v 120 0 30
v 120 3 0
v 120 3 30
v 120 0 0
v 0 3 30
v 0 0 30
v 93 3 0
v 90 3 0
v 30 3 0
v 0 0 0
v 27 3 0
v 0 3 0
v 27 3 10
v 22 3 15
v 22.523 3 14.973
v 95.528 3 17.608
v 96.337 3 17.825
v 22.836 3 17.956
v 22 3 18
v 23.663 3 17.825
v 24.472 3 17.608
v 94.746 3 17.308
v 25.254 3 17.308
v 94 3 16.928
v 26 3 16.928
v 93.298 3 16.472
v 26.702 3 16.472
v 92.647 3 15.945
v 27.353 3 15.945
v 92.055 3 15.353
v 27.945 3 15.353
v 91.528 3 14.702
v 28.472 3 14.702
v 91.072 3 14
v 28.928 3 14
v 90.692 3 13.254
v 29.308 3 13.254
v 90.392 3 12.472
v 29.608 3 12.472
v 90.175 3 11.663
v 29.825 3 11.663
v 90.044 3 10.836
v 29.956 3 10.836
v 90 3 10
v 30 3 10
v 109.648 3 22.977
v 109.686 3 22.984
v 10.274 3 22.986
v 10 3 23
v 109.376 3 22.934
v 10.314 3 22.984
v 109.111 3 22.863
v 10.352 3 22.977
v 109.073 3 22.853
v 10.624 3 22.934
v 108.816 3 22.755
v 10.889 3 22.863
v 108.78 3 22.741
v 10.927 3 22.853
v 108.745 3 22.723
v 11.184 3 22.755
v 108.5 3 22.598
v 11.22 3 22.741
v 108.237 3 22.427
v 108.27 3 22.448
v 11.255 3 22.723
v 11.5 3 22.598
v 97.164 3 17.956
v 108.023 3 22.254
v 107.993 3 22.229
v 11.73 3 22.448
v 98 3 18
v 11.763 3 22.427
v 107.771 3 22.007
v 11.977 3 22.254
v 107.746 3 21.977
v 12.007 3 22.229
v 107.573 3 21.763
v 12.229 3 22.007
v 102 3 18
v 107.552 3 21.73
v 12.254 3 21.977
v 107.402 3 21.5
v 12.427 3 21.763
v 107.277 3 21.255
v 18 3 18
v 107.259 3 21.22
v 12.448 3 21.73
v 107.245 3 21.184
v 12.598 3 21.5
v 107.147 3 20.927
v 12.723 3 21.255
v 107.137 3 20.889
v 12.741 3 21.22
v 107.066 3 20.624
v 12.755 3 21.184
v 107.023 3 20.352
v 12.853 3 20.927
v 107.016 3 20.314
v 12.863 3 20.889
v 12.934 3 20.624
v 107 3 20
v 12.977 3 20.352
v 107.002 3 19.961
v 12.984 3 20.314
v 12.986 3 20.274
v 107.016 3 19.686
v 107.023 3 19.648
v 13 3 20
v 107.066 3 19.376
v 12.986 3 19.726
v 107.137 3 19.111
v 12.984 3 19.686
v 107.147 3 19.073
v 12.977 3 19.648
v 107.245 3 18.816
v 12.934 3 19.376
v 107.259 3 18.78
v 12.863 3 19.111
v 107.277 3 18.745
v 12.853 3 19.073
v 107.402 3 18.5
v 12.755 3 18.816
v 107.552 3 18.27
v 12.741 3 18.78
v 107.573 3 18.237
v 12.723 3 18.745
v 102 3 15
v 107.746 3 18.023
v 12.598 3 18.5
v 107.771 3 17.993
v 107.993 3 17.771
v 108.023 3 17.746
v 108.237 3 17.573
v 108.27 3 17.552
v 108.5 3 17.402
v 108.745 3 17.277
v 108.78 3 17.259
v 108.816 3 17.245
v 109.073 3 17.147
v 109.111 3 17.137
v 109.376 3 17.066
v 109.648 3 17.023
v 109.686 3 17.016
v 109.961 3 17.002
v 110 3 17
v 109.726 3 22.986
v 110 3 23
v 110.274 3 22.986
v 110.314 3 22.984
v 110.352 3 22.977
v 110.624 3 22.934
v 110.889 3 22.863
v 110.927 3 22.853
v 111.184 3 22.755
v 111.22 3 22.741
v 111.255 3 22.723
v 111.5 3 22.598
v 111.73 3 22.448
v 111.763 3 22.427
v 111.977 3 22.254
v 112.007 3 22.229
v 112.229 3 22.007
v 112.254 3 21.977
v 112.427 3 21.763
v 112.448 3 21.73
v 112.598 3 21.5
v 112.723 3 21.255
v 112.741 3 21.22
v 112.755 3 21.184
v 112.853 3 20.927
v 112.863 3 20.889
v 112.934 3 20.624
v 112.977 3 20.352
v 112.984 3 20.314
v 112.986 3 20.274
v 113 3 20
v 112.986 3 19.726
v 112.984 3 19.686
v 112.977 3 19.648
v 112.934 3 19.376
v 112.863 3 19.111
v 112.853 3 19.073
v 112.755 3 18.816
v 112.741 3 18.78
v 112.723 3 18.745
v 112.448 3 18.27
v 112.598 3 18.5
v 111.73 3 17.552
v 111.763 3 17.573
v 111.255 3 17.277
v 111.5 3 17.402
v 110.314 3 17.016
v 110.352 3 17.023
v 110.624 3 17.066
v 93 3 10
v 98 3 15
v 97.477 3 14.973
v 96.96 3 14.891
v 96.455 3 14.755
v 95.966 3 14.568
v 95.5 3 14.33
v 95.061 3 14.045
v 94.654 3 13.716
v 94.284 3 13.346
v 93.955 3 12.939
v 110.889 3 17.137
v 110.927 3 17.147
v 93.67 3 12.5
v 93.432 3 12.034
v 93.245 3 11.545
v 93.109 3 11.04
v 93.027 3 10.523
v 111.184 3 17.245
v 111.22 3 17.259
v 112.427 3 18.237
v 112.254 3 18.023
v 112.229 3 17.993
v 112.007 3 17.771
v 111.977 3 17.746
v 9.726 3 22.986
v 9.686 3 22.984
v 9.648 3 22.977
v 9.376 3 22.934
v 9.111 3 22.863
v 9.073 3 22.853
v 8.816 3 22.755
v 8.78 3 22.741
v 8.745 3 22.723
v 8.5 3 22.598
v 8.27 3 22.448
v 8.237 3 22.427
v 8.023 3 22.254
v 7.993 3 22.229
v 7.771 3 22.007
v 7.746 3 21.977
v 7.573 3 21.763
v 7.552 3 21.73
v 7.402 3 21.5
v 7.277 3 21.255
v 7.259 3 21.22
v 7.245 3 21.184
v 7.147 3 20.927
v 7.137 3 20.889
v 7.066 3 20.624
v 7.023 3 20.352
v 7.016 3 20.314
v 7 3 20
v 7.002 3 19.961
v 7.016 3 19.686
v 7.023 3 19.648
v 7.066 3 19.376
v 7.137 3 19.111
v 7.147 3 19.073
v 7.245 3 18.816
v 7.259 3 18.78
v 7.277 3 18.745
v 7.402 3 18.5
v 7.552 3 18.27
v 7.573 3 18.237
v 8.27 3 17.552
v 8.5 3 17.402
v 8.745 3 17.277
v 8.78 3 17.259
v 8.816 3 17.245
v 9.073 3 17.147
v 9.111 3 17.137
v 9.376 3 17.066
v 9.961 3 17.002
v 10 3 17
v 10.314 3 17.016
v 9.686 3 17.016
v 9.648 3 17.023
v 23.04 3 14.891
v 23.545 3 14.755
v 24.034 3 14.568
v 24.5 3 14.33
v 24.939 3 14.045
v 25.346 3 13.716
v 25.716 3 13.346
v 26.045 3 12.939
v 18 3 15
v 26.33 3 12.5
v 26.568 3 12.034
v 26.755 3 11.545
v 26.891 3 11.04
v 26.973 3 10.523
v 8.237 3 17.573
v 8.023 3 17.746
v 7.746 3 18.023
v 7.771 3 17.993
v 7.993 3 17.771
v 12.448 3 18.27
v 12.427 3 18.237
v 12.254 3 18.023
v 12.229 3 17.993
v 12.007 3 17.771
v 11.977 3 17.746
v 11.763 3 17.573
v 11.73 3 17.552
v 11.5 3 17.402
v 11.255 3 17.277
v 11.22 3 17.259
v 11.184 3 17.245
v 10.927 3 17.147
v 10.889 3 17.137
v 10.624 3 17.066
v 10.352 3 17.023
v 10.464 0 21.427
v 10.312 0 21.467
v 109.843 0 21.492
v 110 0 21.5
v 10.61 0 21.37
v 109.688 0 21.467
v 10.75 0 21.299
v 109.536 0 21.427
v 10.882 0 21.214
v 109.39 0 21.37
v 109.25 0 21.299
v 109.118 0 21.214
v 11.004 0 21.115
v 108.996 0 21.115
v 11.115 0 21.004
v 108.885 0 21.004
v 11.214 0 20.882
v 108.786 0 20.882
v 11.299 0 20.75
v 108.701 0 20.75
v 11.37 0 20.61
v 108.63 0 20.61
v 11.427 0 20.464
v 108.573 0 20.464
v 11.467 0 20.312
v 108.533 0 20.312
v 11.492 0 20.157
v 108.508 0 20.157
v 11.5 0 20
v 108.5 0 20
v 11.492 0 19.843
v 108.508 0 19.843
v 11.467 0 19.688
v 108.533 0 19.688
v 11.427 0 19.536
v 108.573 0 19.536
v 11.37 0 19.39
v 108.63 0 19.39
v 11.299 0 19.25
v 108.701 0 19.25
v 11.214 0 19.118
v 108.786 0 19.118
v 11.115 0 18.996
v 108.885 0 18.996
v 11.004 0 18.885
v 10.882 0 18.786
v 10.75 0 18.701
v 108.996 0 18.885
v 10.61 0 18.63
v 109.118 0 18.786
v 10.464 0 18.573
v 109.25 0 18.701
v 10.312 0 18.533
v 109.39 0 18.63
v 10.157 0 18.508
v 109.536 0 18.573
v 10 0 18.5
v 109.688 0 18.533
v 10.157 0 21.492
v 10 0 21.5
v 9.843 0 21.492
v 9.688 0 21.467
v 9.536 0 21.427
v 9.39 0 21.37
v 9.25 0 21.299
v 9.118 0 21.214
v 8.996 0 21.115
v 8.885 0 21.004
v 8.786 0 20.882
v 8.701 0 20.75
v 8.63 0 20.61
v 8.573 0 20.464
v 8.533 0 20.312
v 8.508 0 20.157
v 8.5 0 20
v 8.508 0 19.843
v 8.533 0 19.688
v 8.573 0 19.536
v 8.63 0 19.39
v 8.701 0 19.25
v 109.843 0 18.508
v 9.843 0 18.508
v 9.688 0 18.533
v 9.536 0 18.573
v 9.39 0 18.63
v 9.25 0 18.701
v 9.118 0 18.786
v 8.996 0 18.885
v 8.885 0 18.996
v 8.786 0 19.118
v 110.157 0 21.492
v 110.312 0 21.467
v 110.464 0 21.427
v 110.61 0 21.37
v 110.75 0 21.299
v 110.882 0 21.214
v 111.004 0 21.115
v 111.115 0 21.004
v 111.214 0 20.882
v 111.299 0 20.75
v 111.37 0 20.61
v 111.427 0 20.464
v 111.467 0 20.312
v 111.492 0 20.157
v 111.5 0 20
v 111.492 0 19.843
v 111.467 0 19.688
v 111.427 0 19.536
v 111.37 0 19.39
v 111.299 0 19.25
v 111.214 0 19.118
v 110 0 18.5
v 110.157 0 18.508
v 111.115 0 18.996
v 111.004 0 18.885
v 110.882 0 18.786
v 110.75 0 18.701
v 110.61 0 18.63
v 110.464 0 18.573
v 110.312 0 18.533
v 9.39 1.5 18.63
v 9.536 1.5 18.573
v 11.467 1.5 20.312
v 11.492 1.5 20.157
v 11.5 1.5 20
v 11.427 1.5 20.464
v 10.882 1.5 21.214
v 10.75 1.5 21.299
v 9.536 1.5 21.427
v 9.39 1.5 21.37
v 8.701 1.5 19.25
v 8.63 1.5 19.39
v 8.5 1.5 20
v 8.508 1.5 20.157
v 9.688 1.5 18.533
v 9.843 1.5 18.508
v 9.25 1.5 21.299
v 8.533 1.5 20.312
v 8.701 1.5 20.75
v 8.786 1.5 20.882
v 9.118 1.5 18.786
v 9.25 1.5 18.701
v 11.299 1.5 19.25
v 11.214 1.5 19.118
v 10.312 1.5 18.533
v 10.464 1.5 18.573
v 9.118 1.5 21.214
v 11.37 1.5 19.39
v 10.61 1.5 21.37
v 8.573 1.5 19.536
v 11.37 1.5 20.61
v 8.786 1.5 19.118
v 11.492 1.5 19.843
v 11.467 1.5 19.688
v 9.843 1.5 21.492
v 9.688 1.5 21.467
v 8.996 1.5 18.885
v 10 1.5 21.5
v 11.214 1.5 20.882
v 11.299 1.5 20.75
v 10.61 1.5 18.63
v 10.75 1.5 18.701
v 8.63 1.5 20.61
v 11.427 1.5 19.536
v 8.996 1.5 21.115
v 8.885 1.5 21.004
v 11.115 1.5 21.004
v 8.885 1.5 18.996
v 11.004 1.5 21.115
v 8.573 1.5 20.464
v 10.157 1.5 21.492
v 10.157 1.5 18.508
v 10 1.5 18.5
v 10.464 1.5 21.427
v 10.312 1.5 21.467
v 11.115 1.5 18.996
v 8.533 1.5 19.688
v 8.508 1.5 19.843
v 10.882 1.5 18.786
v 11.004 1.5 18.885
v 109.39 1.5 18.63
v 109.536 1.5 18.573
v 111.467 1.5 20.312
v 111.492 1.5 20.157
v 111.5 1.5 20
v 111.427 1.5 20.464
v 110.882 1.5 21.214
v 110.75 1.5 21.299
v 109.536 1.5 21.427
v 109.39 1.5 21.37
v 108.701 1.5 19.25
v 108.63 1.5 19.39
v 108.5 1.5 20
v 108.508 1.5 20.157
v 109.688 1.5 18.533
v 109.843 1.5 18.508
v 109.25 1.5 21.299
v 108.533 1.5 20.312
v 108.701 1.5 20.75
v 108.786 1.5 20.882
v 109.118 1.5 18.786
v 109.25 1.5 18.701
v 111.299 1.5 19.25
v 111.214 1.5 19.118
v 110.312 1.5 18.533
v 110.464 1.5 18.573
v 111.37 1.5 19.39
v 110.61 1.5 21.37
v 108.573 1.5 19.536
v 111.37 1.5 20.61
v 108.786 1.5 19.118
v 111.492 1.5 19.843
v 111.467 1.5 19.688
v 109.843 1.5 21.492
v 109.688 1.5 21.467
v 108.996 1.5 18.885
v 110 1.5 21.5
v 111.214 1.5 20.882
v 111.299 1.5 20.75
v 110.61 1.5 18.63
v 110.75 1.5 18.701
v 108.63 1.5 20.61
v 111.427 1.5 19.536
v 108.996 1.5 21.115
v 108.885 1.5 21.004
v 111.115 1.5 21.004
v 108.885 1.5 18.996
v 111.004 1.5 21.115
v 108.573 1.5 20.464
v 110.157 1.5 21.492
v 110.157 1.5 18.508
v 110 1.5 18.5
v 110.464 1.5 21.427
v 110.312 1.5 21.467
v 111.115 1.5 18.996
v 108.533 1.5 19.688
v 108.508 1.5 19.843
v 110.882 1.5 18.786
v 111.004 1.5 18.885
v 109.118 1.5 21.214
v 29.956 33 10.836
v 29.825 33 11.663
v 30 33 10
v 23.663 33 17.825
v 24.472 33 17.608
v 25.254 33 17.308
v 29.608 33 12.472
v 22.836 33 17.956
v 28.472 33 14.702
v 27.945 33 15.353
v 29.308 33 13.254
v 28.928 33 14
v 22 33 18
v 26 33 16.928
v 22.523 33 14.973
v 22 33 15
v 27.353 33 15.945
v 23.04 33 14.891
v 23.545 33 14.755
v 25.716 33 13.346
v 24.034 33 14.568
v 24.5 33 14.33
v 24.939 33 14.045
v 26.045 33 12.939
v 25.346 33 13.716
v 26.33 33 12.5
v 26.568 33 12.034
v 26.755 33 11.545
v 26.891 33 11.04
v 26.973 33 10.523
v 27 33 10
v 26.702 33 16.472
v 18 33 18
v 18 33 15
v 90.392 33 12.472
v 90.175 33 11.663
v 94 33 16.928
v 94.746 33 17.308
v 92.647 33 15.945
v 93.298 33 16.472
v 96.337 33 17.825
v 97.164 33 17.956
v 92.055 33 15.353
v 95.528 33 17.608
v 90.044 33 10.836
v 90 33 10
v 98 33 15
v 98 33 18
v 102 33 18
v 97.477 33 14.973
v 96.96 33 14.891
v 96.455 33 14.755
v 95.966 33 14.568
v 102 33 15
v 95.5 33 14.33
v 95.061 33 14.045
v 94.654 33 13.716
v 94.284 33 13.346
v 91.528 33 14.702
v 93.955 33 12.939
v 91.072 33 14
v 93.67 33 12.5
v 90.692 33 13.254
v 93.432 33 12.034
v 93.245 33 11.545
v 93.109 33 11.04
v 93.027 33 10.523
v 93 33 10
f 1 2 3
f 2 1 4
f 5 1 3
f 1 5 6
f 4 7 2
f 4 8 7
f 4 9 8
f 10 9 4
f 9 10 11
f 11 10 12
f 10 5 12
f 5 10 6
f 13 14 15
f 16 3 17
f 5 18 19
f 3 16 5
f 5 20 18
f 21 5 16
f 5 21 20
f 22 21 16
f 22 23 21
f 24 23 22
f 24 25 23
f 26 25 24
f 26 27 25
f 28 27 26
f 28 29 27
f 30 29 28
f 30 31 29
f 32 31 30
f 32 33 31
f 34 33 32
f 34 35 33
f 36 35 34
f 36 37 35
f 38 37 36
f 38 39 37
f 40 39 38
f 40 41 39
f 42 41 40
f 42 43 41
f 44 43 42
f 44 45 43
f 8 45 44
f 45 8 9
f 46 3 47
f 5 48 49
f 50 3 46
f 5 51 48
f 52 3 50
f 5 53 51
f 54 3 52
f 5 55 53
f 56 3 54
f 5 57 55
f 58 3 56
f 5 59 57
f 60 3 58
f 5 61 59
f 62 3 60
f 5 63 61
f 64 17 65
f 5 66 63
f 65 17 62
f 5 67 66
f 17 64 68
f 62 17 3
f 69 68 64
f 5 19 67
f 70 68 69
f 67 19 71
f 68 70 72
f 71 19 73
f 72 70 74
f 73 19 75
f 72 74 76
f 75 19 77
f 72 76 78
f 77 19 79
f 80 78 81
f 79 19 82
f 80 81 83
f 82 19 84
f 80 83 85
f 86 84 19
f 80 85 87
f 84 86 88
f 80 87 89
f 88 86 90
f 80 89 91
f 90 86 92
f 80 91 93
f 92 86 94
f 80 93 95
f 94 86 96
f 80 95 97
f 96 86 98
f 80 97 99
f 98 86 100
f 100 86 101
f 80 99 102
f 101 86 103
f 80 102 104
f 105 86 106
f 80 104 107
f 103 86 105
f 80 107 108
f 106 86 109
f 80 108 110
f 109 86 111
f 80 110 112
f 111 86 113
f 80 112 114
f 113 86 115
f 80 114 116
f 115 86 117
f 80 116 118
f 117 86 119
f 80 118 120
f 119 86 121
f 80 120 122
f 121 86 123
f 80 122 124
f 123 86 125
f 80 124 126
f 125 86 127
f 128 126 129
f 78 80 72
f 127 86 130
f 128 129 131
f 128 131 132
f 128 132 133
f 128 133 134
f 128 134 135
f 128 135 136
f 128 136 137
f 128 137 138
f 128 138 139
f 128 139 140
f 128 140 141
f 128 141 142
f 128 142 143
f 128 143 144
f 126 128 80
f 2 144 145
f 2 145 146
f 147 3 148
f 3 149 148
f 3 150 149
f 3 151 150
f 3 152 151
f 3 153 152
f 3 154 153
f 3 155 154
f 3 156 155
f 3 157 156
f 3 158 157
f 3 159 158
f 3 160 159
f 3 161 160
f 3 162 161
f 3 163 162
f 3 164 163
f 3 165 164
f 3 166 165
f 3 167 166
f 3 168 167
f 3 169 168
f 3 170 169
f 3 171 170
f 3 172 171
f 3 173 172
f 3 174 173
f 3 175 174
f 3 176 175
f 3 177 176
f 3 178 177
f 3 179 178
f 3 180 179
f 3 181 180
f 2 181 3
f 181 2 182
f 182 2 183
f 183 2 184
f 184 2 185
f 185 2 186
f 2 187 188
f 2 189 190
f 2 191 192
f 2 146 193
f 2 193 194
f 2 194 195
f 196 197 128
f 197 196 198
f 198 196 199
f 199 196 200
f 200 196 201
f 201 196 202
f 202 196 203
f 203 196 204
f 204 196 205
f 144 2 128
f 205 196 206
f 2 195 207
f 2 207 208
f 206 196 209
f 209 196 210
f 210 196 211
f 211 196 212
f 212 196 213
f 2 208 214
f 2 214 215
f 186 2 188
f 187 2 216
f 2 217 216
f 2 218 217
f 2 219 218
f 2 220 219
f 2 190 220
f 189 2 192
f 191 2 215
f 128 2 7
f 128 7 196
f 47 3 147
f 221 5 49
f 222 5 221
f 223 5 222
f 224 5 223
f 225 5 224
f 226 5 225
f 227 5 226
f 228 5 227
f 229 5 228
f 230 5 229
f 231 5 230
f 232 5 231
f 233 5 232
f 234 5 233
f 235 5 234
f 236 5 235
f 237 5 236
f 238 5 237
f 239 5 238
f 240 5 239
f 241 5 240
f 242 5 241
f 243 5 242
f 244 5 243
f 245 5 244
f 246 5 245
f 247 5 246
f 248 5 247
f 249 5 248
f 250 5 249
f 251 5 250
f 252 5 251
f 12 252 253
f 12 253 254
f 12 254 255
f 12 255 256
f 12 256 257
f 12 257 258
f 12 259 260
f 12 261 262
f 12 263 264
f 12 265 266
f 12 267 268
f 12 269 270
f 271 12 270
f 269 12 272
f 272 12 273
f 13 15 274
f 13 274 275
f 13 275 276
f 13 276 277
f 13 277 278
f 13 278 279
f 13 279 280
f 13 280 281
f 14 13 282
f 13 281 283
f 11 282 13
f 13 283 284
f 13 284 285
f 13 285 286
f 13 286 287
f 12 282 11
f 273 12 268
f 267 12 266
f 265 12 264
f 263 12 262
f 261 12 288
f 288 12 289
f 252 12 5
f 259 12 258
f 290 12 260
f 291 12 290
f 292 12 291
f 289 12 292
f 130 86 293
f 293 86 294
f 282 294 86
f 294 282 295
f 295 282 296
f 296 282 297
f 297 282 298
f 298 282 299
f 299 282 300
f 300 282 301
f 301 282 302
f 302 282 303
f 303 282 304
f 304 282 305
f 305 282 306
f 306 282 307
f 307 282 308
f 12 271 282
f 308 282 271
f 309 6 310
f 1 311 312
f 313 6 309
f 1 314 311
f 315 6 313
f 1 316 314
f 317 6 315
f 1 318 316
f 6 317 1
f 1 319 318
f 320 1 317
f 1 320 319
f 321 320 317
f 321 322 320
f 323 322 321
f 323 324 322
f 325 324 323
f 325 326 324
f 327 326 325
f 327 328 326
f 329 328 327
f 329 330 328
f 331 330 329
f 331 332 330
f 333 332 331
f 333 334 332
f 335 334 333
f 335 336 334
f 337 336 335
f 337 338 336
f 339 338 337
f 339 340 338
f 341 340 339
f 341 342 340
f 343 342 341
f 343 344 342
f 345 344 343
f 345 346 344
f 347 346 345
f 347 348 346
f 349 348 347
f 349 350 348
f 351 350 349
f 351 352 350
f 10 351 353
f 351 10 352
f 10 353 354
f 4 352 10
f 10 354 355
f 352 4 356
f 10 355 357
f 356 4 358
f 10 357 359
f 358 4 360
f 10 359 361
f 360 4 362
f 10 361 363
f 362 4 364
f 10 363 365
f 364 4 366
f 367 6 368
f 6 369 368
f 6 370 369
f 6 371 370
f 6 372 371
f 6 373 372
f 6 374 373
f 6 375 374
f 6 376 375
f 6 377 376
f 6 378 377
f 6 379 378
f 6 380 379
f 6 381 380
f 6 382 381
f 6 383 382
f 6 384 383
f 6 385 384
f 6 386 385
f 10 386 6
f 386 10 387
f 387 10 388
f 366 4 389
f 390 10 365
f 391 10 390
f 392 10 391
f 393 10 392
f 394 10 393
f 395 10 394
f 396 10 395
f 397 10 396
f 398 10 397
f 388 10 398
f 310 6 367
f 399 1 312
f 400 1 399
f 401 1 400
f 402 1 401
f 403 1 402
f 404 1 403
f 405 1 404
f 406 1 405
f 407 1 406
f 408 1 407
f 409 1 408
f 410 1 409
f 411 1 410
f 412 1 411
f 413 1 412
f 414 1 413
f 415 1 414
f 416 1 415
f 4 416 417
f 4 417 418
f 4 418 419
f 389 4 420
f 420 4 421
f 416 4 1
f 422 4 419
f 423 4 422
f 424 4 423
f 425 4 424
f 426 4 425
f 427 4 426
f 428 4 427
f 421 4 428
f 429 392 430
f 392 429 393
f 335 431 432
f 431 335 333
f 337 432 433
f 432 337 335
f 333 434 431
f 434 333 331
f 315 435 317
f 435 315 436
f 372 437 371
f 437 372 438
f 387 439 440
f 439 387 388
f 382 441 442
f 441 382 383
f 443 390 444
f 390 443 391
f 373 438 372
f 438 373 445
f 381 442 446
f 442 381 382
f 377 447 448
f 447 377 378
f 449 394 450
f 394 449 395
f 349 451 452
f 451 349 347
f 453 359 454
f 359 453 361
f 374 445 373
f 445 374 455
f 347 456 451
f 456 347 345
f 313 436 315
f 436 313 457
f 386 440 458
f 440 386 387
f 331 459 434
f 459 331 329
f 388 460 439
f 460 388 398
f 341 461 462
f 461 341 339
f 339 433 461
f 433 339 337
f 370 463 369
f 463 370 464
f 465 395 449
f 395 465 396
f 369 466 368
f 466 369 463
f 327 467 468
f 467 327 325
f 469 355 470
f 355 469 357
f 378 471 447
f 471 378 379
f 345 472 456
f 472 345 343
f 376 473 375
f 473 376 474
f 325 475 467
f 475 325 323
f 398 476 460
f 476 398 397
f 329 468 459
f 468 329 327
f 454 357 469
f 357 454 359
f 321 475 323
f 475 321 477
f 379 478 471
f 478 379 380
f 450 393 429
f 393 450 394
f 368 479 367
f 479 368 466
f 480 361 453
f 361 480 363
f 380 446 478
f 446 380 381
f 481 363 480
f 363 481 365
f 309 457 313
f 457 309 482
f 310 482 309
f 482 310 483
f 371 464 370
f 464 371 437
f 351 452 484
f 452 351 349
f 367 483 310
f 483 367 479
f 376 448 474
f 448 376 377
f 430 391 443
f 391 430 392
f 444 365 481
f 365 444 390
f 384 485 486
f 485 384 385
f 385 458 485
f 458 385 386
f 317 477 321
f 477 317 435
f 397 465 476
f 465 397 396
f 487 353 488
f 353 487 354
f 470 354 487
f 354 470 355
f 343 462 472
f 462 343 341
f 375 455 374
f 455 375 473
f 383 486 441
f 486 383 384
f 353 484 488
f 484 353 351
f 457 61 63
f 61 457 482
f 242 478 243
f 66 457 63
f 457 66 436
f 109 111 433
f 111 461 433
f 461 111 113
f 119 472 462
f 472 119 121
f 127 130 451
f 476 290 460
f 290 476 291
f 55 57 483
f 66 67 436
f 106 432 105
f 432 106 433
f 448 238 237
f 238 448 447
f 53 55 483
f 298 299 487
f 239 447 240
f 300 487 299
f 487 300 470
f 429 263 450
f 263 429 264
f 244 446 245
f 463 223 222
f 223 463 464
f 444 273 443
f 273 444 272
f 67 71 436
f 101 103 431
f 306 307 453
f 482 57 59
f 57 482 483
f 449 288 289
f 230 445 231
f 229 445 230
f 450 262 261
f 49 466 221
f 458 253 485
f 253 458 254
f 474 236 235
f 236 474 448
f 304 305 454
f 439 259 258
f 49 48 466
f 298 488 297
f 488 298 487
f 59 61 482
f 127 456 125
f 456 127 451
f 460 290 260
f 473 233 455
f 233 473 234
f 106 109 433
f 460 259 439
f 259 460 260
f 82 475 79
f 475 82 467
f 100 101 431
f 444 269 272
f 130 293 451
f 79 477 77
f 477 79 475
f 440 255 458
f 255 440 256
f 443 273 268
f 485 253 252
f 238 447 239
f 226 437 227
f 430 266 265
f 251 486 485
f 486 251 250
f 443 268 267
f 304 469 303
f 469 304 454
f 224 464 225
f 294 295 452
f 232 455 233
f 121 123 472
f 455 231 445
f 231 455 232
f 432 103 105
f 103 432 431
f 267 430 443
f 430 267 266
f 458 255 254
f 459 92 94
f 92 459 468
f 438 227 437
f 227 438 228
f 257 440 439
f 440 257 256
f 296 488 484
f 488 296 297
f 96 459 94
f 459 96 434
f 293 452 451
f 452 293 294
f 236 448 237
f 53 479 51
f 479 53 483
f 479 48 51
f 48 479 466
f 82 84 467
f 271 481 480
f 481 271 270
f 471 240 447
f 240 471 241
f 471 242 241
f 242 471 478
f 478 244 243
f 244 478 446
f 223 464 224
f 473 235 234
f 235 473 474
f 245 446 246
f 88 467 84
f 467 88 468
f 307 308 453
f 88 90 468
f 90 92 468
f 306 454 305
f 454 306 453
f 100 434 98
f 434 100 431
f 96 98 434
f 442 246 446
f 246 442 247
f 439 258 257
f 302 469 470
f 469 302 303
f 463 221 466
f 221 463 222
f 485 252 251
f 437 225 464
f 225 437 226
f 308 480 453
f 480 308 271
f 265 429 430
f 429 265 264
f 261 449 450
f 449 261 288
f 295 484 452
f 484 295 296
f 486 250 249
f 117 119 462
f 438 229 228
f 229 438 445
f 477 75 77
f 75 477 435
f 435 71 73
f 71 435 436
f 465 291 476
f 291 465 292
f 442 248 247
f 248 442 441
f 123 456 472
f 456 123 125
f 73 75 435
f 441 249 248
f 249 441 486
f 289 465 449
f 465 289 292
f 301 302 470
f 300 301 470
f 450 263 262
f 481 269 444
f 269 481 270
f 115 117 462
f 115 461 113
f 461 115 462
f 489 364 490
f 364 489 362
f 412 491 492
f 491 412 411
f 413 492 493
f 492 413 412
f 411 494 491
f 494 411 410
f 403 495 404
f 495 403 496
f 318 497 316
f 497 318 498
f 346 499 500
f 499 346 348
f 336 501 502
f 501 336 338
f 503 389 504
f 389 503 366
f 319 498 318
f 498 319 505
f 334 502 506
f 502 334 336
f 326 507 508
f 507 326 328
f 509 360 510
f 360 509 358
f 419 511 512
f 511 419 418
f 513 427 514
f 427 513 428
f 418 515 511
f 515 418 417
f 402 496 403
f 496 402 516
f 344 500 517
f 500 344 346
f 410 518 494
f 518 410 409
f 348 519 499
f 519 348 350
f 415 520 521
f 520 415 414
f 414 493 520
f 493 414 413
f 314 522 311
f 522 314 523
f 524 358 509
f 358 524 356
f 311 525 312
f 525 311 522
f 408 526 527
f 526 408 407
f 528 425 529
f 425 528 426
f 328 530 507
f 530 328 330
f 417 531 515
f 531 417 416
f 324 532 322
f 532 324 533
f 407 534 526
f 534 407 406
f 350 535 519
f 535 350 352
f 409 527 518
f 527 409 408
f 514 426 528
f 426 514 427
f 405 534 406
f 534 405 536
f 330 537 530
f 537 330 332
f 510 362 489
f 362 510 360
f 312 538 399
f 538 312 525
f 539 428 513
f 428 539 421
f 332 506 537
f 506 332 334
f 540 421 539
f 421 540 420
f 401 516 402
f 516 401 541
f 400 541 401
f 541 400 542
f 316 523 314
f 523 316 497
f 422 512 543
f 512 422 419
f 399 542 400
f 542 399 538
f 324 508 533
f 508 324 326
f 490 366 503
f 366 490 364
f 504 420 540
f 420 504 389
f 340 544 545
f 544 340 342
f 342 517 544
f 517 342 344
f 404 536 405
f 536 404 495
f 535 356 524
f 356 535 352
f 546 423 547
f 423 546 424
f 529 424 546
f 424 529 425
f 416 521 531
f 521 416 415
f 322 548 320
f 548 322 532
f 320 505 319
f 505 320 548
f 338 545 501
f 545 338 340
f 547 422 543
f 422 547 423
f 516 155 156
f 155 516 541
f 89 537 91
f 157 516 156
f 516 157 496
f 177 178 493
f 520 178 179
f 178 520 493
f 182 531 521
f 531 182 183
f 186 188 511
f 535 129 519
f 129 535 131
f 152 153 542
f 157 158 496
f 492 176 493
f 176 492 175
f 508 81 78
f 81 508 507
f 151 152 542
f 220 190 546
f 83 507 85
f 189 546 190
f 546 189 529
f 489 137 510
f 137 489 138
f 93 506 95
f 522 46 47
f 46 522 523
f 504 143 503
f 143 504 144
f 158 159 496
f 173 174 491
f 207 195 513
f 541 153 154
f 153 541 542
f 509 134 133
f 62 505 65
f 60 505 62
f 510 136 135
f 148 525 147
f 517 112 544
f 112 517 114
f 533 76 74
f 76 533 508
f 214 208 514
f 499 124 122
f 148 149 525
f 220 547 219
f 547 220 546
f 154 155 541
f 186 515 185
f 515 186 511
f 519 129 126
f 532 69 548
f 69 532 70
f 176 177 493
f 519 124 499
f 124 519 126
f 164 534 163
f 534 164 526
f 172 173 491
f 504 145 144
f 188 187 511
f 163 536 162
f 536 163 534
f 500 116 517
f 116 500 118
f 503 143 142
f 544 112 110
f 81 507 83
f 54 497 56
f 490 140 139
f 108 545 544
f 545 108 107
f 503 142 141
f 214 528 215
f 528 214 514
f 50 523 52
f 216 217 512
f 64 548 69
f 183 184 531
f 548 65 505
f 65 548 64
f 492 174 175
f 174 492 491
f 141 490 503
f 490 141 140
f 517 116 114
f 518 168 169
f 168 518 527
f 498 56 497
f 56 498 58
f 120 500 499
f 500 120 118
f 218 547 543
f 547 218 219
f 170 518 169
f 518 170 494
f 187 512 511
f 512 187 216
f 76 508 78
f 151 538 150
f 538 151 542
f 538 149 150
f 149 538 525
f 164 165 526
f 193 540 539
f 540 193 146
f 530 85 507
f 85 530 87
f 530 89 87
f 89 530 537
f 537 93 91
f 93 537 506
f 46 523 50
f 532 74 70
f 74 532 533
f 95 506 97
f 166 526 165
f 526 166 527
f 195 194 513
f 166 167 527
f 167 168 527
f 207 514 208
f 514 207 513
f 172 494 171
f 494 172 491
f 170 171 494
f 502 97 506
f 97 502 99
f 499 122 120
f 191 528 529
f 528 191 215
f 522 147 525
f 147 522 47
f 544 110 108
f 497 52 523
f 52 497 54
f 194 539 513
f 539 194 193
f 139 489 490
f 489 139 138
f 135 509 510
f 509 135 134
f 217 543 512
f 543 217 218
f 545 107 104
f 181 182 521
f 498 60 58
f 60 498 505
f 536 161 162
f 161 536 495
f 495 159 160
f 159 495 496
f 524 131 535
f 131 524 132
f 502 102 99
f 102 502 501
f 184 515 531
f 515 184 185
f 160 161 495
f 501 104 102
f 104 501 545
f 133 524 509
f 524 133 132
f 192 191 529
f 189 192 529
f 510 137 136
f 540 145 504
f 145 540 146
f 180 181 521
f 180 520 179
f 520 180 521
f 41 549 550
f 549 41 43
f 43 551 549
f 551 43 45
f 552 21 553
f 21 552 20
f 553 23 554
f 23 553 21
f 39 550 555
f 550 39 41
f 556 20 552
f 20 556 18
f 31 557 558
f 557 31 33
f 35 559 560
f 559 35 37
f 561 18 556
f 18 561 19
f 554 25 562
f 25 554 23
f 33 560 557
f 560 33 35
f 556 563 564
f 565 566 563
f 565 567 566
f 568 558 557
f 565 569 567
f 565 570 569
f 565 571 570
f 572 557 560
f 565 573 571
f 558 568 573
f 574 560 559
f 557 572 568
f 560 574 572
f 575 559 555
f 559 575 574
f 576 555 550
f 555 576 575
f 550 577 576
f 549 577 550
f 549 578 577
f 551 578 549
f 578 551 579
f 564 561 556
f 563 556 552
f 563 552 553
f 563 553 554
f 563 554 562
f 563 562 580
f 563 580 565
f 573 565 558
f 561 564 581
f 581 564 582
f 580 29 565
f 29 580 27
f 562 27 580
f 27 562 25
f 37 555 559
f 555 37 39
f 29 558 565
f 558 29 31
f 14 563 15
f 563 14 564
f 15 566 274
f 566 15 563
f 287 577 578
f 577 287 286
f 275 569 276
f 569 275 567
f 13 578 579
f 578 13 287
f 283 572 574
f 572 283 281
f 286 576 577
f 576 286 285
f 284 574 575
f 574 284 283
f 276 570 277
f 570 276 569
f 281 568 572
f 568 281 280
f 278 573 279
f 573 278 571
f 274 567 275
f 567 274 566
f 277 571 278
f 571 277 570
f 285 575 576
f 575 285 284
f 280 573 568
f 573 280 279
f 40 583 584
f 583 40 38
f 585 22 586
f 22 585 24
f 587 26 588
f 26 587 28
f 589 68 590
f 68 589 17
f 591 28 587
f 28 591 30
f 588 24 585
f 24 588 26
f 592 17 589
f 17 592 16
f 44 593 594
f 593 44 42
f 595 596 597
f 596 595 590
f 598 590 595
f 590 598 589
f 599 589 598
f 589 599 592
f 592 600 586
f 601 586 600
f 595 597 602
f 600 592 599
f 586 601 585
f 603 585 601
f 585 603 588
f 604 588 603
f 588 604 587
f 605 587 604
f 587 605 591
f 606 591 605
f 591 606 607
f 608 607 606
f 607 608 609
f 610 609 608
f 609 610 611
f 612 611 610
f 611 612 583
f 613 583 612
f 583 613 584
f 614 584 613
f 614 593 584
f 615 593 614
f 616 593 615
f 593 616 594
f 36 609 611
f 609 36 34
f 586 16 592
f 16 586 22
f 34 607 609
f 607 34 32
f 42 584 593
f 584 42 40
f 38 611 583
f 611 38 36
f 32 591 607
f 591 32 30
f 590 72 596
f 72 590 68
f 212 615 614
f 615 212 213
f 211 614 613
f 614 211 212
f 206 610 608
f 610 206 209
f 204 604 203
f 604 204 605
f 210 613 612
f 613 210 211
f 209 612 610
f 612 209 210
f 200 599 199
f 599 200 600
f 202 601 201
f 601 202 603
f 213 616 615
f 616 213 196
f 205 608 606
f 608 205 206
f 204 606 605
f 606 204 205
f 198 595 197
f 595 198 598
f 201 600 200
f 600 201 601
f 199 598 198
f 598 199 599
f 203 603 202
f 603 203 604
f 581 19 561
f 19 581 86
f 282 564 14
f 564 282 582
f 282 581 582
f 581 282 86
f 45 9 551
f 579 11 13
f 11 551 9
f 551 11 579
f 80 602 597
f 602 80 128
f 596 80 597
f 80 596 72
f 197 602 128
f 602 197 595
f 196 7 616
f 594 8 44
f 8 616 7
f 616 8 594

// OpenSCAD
$fn = 60;

rotate([00, 0, 00]) {
 difference () {
   cube([120, 3, 30]);
   translate([10, 4, 20]) rotate([90, 0, 0]) cylinder(5, r=1.5);
   translate([10, 1.5, 20]) rotate([-90, 0, 0]) cylinder(2, r1=1.5, r2=3.5);
   translate([110, 4, 20]) rotate([90, 0, 0]) cylinder(5, r=1.5);
   translate([110, 1.5, 20]) rotate([-90, 0, 0]) cylinder(2, r1=1.5, r2=3.5);
 

 
   }
 
  translate([22, 3, 10]) rotate([-90, 0, 0]) difference () { cylinder(30, r=8); 
    cylinder(31, r=5); 
    translate([-9, -9, 0]) cube([9, 18, 31]);
    translate([0, 0, 0]) cube([9, 9, 31]);

    }
  translate([18, 3, 15]) cube([4, 30, 3]);
translate([30, 3, 0]) rotate([0, -90, 0]) {
linear_extrude(height=3) {
polygon([[0, 0], [10, 0], [10, 30]]);
}
}


  translate([98, 3, 10]) rotate([-90, 0, 0]) difference () {
    cylinder(30, r=8); 
    cylinder(31, r=5);
    translate([0, -9, 0]) cube([9, 18, 31]);
    translate([-9, 0, 0]) cube([9, 9, 31]);
  }
   
  translate([98, 3, 15]) cube([4, 30, 3]);

translate([93, 3, 0]) rotate([0, -90, 0]) {
linear_extrude(height=3) {
polygon([[0, 0], [10, 0], [10, 30]]);
}
}



}
